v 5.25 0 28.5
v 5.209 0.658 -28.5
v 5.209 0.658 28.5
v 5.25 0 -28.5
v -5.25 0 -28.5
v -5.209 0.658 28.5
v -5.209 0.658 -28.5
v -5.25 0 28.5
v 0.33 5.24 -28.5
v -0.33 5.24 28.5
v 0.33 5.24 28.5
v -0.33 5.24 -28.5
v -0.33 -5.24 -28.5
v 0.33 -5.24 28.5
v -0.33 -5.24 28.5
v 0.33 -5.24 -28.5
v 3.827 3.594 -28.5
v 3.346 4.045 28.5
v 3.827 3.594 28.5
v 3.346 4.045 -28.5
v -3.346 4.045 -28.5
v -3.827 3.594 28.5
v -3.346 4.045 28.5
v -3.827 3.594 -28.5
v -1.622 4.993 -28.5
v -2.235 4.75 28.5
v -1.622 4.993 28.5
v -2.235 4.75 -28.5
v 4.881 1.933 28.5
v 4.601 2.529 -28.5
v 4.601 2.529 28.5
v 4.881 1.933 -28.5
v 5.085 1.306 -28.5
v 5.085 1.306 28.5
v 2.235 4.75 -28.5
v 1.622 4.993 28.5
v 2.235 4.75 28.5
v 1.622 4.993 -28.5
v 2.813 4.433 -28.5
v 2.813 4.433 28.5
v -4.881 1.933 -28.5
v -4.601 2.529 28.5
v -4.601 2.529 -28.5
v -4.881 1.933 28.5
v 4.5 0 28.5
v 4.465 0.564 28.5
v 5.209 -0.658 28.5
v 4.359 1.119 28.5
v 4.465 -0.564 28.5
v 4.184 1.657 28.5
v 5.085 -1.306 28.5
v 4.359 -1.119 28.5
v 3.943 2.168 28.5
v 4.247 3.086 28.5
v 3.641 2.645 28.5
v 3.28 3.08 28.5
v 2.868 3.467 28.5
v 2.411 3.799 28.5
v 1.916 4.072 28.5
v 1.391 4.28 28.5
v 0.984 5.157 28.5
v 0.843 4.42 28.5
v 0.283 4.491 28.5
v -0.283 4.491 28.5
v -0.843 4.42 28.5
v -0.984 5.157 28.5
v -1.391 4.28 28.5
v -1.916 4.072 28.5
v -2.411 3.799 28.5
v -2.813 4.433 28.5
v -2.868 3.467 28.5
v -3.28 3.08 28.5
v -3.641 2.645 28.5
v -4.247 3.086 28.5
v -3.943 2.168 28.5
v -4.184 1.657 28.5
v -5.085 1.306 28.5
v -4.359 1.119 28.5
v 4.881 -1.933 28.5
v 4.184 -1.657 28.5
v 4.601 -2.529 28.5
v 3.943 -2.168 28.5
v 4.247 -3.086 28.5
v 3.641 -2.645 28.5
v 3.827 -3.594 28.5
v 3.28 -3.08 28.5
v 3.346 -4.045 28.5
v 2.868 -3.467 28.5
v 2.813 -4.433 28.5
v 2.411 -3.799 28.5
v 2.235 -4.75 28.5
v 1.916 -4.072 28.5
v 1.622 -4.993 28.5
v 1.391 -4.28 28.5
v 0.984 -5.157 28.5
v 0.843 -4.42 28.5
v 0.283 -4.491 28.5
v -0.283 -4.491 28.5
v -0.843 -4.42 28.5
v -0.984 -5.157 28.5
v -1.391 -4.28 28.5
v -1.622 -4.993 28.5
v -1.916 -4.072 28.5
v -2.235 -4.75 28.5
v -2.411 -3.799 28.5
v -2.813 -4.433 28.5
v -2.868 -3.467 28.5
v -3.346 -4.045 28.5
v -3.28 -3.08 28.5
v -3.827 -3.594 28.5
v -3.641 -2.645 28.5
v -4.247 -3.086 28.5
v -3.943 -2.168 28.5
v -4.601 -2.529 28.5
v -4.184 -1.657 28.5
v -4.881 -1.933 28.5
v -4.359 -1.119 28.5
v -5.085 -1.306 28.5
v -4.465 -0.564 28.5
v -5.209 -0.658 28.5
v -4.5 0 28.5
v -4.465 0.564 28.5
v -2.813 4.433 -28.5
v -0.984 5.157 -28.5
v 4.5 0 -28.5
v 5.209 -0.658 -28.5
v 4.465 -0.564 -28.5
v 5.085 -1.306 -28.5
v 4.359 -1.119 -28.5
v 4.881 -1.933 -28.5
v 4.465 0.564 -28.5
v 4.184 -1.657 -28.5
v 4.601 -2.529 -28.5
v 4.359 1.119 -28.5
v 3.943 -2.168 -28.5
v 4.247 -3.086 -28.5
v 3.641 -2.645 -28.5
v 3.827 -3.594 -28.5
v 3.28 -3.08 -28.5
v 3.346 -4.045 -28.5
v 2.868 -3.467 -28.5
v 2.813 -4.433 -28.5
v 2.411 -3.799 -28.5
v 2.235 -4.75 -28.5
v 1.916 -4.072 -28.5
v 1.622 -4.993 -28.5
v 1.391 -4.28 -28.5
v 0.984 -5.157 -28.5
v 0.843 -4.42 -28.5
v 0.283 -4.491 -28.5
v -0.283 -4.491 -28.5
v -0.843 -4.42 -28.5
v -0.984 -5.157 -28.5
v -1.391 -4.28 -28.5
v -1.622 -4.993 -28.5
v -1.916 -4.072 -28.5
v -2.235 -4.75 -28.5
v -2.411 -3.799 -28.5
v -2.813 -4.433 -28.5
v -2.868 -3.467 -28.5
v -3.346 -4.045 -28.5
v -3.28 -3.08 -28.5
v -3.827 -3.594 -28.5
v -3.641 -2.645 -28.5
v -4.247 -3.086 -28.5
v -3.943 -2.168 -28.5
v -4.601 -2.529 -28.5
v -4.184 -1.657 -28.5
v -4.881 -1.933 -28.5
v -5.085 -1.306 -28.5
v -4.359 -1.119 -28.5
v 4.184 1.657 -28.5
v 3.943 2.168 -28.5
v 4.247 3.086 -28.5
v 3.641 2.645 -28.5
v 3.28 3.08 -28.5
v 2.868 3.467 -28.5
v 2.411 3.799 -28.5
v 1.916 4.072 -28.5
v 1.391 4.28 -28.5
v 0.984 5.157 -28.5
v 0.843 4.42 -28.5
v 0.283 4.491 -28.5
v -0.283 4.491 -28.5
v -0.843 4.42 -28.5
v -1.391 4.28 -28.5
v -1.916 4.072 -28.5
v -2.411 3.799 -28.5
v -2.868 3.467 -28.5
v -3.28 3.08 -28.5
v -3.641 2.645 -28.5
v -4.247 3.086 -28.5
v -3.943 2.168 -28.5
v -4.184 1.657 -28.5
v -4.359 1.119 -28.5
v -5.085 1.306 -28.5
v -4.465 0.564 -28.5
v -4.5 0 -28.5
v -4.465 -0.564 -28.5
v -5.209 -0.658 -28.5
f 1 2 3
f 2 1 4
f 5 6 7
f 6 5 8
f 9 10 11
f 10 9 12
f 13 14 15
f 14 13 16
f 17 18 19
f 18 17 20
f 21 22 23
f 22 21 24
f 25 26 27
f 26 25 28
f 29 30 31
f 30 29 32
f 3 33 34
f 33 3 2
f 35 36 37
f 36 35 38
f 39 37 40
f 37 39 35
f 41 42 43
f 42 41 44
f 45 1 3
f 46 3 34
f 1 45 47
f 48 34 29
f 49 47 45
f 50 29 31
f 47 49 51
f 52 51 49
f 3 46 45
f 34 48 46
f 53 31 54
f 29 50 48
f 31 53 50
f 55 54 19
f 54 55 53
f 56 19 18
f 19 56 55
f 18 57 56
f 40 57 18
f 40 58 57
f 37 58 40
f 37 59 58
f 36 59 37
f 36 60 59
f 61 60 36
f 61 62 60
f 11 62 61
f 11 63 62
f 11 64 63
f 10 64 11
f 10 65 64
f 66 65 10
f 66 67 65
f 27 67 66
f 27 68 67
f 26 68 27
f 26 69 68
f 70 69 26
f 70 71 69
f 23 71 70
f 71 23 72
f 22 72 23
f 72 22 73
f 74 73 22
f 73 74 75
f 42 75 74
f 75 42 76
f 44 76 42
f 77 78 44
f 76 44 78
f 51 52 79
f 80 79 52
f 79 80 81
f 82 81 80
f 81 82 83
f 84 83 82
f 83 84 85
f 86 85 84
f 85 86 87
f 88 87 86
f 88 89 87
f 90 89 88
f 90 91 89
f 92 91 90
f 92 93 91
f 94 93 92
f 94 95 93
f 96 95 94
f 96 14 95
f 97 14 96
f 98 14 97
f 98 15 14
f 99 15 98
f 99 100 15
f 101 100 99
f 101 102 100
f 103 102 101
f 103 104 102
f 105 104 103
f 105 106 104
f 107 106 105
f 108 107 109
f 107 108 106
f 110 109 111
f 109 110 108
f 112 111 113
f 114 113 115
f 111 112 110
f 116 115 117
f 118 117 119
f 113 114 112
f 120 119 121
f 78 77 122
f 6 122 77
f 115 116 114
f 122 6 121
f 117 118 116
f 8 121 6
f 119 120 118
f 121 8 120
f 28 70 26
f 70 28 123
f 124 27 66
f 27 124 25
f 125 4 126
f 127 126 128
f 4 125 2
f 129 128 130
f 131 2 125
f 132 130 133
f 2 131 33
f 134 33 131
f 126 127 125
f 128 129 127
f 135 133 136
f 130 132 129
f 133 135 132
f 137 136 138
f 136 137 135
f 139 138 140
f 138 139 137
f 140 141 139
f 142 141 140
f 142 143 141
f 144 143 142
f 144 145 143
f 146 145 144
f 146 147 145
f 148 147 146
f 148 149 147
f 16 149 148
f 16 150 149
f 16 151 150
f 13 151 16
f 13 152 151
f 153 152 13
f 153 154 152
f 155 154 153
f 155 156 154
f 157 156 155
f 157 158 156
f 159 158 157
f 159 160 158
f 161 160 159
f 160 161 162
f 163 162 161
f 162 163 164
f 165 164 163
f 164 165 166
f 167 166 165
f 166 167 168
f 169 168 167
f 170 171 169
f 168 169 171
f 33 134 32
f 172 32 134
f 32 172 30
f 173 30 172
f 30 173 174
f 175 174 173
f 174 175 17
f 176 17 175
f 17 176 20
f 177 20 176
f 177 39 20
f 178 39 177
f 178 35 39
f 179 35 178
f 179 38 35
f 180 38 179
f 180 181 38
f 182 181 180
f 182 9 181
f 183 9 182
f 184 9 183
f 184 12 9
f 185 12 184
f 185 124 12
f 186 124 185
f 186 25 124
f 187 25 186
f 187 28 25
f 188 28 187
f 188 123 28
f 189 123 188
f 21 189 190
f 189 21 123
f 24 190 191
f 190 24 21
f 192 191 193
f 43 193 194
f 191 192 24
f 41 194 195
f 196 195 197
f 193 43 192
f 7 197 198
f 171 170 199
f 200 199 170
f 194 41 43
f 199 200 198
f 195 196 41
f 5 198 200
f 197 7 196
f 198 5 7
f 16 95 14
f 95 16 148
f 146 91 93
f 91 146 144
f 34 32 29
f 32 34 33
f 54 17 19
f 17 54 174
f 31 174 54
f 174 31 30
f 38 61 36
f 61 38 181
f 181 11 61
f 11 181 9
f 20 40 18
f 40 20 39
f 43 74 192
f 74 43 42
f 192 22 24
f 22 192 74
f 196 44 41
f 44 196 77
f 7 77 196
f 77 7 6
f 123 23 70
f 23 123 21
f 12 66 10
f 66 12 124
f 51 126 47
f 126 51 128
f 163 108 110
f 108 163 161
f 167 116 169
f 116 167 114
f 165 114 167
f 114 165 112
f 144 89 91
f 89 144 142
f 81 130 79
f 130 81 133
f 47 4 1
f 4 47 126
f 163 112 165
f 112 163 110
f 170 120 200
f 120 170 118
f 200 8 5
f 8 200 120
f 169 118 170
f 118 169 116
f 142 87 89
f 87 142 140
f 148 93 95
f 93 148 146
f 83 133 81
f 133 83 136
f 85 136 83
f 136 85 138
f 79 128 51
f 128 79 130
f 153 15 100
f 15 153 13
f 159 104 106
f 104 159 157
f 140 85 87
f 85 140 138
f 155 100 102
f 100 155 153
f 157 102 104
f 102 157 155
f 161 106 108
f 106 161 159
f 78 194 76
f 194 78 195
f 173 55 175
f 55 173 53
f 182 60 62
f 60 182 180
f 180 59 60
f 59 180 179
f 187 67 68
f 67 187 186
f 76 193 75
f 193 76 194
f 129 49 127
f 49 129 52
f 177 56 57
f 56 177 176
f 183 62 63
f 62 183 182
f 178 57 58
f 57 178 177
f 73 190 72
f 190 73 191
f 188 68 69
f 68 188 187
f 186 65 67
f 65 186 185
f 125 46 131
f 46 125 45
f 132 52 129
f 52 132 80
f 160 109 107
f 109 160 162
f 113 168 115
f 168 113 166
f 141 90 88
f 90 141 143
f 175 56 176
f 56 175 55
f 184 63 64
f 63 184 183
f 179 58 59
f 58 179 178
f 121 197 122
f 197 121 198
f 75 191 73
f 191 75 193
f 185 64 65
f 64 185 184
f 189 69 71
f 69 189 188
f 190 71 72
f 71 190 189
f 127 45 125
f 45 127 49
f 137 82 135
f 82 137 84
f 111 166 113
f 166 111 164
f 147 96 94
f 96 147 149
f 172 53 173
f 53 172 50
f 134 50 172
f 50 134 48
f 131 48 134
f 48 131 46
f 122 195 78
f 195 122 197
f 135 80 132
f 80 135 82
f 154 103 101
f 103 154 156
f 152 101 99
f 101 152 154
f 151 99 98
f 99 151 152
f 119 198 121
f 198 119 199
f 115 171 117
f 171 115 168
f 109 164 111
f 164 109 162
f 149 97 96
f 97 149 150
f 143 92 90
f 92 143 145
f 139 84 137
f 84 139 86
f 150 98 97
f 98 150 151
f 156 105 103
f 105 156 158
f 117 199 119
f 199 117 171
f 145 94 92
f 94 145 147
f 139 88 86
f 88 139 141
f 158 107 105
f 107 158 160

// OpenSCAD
$fn = 50;


difference() {
	union() {
		translate(v = [0, 0, -28.5000000000]) {
			cylinder(h = 57, r = 5.2500000000);
		}
	}
	union() {
		translate(v = [0, 0, -100.0000000000]) {
			cylinder(h = 200, r = 4.5000000000);
		}
	}
}
